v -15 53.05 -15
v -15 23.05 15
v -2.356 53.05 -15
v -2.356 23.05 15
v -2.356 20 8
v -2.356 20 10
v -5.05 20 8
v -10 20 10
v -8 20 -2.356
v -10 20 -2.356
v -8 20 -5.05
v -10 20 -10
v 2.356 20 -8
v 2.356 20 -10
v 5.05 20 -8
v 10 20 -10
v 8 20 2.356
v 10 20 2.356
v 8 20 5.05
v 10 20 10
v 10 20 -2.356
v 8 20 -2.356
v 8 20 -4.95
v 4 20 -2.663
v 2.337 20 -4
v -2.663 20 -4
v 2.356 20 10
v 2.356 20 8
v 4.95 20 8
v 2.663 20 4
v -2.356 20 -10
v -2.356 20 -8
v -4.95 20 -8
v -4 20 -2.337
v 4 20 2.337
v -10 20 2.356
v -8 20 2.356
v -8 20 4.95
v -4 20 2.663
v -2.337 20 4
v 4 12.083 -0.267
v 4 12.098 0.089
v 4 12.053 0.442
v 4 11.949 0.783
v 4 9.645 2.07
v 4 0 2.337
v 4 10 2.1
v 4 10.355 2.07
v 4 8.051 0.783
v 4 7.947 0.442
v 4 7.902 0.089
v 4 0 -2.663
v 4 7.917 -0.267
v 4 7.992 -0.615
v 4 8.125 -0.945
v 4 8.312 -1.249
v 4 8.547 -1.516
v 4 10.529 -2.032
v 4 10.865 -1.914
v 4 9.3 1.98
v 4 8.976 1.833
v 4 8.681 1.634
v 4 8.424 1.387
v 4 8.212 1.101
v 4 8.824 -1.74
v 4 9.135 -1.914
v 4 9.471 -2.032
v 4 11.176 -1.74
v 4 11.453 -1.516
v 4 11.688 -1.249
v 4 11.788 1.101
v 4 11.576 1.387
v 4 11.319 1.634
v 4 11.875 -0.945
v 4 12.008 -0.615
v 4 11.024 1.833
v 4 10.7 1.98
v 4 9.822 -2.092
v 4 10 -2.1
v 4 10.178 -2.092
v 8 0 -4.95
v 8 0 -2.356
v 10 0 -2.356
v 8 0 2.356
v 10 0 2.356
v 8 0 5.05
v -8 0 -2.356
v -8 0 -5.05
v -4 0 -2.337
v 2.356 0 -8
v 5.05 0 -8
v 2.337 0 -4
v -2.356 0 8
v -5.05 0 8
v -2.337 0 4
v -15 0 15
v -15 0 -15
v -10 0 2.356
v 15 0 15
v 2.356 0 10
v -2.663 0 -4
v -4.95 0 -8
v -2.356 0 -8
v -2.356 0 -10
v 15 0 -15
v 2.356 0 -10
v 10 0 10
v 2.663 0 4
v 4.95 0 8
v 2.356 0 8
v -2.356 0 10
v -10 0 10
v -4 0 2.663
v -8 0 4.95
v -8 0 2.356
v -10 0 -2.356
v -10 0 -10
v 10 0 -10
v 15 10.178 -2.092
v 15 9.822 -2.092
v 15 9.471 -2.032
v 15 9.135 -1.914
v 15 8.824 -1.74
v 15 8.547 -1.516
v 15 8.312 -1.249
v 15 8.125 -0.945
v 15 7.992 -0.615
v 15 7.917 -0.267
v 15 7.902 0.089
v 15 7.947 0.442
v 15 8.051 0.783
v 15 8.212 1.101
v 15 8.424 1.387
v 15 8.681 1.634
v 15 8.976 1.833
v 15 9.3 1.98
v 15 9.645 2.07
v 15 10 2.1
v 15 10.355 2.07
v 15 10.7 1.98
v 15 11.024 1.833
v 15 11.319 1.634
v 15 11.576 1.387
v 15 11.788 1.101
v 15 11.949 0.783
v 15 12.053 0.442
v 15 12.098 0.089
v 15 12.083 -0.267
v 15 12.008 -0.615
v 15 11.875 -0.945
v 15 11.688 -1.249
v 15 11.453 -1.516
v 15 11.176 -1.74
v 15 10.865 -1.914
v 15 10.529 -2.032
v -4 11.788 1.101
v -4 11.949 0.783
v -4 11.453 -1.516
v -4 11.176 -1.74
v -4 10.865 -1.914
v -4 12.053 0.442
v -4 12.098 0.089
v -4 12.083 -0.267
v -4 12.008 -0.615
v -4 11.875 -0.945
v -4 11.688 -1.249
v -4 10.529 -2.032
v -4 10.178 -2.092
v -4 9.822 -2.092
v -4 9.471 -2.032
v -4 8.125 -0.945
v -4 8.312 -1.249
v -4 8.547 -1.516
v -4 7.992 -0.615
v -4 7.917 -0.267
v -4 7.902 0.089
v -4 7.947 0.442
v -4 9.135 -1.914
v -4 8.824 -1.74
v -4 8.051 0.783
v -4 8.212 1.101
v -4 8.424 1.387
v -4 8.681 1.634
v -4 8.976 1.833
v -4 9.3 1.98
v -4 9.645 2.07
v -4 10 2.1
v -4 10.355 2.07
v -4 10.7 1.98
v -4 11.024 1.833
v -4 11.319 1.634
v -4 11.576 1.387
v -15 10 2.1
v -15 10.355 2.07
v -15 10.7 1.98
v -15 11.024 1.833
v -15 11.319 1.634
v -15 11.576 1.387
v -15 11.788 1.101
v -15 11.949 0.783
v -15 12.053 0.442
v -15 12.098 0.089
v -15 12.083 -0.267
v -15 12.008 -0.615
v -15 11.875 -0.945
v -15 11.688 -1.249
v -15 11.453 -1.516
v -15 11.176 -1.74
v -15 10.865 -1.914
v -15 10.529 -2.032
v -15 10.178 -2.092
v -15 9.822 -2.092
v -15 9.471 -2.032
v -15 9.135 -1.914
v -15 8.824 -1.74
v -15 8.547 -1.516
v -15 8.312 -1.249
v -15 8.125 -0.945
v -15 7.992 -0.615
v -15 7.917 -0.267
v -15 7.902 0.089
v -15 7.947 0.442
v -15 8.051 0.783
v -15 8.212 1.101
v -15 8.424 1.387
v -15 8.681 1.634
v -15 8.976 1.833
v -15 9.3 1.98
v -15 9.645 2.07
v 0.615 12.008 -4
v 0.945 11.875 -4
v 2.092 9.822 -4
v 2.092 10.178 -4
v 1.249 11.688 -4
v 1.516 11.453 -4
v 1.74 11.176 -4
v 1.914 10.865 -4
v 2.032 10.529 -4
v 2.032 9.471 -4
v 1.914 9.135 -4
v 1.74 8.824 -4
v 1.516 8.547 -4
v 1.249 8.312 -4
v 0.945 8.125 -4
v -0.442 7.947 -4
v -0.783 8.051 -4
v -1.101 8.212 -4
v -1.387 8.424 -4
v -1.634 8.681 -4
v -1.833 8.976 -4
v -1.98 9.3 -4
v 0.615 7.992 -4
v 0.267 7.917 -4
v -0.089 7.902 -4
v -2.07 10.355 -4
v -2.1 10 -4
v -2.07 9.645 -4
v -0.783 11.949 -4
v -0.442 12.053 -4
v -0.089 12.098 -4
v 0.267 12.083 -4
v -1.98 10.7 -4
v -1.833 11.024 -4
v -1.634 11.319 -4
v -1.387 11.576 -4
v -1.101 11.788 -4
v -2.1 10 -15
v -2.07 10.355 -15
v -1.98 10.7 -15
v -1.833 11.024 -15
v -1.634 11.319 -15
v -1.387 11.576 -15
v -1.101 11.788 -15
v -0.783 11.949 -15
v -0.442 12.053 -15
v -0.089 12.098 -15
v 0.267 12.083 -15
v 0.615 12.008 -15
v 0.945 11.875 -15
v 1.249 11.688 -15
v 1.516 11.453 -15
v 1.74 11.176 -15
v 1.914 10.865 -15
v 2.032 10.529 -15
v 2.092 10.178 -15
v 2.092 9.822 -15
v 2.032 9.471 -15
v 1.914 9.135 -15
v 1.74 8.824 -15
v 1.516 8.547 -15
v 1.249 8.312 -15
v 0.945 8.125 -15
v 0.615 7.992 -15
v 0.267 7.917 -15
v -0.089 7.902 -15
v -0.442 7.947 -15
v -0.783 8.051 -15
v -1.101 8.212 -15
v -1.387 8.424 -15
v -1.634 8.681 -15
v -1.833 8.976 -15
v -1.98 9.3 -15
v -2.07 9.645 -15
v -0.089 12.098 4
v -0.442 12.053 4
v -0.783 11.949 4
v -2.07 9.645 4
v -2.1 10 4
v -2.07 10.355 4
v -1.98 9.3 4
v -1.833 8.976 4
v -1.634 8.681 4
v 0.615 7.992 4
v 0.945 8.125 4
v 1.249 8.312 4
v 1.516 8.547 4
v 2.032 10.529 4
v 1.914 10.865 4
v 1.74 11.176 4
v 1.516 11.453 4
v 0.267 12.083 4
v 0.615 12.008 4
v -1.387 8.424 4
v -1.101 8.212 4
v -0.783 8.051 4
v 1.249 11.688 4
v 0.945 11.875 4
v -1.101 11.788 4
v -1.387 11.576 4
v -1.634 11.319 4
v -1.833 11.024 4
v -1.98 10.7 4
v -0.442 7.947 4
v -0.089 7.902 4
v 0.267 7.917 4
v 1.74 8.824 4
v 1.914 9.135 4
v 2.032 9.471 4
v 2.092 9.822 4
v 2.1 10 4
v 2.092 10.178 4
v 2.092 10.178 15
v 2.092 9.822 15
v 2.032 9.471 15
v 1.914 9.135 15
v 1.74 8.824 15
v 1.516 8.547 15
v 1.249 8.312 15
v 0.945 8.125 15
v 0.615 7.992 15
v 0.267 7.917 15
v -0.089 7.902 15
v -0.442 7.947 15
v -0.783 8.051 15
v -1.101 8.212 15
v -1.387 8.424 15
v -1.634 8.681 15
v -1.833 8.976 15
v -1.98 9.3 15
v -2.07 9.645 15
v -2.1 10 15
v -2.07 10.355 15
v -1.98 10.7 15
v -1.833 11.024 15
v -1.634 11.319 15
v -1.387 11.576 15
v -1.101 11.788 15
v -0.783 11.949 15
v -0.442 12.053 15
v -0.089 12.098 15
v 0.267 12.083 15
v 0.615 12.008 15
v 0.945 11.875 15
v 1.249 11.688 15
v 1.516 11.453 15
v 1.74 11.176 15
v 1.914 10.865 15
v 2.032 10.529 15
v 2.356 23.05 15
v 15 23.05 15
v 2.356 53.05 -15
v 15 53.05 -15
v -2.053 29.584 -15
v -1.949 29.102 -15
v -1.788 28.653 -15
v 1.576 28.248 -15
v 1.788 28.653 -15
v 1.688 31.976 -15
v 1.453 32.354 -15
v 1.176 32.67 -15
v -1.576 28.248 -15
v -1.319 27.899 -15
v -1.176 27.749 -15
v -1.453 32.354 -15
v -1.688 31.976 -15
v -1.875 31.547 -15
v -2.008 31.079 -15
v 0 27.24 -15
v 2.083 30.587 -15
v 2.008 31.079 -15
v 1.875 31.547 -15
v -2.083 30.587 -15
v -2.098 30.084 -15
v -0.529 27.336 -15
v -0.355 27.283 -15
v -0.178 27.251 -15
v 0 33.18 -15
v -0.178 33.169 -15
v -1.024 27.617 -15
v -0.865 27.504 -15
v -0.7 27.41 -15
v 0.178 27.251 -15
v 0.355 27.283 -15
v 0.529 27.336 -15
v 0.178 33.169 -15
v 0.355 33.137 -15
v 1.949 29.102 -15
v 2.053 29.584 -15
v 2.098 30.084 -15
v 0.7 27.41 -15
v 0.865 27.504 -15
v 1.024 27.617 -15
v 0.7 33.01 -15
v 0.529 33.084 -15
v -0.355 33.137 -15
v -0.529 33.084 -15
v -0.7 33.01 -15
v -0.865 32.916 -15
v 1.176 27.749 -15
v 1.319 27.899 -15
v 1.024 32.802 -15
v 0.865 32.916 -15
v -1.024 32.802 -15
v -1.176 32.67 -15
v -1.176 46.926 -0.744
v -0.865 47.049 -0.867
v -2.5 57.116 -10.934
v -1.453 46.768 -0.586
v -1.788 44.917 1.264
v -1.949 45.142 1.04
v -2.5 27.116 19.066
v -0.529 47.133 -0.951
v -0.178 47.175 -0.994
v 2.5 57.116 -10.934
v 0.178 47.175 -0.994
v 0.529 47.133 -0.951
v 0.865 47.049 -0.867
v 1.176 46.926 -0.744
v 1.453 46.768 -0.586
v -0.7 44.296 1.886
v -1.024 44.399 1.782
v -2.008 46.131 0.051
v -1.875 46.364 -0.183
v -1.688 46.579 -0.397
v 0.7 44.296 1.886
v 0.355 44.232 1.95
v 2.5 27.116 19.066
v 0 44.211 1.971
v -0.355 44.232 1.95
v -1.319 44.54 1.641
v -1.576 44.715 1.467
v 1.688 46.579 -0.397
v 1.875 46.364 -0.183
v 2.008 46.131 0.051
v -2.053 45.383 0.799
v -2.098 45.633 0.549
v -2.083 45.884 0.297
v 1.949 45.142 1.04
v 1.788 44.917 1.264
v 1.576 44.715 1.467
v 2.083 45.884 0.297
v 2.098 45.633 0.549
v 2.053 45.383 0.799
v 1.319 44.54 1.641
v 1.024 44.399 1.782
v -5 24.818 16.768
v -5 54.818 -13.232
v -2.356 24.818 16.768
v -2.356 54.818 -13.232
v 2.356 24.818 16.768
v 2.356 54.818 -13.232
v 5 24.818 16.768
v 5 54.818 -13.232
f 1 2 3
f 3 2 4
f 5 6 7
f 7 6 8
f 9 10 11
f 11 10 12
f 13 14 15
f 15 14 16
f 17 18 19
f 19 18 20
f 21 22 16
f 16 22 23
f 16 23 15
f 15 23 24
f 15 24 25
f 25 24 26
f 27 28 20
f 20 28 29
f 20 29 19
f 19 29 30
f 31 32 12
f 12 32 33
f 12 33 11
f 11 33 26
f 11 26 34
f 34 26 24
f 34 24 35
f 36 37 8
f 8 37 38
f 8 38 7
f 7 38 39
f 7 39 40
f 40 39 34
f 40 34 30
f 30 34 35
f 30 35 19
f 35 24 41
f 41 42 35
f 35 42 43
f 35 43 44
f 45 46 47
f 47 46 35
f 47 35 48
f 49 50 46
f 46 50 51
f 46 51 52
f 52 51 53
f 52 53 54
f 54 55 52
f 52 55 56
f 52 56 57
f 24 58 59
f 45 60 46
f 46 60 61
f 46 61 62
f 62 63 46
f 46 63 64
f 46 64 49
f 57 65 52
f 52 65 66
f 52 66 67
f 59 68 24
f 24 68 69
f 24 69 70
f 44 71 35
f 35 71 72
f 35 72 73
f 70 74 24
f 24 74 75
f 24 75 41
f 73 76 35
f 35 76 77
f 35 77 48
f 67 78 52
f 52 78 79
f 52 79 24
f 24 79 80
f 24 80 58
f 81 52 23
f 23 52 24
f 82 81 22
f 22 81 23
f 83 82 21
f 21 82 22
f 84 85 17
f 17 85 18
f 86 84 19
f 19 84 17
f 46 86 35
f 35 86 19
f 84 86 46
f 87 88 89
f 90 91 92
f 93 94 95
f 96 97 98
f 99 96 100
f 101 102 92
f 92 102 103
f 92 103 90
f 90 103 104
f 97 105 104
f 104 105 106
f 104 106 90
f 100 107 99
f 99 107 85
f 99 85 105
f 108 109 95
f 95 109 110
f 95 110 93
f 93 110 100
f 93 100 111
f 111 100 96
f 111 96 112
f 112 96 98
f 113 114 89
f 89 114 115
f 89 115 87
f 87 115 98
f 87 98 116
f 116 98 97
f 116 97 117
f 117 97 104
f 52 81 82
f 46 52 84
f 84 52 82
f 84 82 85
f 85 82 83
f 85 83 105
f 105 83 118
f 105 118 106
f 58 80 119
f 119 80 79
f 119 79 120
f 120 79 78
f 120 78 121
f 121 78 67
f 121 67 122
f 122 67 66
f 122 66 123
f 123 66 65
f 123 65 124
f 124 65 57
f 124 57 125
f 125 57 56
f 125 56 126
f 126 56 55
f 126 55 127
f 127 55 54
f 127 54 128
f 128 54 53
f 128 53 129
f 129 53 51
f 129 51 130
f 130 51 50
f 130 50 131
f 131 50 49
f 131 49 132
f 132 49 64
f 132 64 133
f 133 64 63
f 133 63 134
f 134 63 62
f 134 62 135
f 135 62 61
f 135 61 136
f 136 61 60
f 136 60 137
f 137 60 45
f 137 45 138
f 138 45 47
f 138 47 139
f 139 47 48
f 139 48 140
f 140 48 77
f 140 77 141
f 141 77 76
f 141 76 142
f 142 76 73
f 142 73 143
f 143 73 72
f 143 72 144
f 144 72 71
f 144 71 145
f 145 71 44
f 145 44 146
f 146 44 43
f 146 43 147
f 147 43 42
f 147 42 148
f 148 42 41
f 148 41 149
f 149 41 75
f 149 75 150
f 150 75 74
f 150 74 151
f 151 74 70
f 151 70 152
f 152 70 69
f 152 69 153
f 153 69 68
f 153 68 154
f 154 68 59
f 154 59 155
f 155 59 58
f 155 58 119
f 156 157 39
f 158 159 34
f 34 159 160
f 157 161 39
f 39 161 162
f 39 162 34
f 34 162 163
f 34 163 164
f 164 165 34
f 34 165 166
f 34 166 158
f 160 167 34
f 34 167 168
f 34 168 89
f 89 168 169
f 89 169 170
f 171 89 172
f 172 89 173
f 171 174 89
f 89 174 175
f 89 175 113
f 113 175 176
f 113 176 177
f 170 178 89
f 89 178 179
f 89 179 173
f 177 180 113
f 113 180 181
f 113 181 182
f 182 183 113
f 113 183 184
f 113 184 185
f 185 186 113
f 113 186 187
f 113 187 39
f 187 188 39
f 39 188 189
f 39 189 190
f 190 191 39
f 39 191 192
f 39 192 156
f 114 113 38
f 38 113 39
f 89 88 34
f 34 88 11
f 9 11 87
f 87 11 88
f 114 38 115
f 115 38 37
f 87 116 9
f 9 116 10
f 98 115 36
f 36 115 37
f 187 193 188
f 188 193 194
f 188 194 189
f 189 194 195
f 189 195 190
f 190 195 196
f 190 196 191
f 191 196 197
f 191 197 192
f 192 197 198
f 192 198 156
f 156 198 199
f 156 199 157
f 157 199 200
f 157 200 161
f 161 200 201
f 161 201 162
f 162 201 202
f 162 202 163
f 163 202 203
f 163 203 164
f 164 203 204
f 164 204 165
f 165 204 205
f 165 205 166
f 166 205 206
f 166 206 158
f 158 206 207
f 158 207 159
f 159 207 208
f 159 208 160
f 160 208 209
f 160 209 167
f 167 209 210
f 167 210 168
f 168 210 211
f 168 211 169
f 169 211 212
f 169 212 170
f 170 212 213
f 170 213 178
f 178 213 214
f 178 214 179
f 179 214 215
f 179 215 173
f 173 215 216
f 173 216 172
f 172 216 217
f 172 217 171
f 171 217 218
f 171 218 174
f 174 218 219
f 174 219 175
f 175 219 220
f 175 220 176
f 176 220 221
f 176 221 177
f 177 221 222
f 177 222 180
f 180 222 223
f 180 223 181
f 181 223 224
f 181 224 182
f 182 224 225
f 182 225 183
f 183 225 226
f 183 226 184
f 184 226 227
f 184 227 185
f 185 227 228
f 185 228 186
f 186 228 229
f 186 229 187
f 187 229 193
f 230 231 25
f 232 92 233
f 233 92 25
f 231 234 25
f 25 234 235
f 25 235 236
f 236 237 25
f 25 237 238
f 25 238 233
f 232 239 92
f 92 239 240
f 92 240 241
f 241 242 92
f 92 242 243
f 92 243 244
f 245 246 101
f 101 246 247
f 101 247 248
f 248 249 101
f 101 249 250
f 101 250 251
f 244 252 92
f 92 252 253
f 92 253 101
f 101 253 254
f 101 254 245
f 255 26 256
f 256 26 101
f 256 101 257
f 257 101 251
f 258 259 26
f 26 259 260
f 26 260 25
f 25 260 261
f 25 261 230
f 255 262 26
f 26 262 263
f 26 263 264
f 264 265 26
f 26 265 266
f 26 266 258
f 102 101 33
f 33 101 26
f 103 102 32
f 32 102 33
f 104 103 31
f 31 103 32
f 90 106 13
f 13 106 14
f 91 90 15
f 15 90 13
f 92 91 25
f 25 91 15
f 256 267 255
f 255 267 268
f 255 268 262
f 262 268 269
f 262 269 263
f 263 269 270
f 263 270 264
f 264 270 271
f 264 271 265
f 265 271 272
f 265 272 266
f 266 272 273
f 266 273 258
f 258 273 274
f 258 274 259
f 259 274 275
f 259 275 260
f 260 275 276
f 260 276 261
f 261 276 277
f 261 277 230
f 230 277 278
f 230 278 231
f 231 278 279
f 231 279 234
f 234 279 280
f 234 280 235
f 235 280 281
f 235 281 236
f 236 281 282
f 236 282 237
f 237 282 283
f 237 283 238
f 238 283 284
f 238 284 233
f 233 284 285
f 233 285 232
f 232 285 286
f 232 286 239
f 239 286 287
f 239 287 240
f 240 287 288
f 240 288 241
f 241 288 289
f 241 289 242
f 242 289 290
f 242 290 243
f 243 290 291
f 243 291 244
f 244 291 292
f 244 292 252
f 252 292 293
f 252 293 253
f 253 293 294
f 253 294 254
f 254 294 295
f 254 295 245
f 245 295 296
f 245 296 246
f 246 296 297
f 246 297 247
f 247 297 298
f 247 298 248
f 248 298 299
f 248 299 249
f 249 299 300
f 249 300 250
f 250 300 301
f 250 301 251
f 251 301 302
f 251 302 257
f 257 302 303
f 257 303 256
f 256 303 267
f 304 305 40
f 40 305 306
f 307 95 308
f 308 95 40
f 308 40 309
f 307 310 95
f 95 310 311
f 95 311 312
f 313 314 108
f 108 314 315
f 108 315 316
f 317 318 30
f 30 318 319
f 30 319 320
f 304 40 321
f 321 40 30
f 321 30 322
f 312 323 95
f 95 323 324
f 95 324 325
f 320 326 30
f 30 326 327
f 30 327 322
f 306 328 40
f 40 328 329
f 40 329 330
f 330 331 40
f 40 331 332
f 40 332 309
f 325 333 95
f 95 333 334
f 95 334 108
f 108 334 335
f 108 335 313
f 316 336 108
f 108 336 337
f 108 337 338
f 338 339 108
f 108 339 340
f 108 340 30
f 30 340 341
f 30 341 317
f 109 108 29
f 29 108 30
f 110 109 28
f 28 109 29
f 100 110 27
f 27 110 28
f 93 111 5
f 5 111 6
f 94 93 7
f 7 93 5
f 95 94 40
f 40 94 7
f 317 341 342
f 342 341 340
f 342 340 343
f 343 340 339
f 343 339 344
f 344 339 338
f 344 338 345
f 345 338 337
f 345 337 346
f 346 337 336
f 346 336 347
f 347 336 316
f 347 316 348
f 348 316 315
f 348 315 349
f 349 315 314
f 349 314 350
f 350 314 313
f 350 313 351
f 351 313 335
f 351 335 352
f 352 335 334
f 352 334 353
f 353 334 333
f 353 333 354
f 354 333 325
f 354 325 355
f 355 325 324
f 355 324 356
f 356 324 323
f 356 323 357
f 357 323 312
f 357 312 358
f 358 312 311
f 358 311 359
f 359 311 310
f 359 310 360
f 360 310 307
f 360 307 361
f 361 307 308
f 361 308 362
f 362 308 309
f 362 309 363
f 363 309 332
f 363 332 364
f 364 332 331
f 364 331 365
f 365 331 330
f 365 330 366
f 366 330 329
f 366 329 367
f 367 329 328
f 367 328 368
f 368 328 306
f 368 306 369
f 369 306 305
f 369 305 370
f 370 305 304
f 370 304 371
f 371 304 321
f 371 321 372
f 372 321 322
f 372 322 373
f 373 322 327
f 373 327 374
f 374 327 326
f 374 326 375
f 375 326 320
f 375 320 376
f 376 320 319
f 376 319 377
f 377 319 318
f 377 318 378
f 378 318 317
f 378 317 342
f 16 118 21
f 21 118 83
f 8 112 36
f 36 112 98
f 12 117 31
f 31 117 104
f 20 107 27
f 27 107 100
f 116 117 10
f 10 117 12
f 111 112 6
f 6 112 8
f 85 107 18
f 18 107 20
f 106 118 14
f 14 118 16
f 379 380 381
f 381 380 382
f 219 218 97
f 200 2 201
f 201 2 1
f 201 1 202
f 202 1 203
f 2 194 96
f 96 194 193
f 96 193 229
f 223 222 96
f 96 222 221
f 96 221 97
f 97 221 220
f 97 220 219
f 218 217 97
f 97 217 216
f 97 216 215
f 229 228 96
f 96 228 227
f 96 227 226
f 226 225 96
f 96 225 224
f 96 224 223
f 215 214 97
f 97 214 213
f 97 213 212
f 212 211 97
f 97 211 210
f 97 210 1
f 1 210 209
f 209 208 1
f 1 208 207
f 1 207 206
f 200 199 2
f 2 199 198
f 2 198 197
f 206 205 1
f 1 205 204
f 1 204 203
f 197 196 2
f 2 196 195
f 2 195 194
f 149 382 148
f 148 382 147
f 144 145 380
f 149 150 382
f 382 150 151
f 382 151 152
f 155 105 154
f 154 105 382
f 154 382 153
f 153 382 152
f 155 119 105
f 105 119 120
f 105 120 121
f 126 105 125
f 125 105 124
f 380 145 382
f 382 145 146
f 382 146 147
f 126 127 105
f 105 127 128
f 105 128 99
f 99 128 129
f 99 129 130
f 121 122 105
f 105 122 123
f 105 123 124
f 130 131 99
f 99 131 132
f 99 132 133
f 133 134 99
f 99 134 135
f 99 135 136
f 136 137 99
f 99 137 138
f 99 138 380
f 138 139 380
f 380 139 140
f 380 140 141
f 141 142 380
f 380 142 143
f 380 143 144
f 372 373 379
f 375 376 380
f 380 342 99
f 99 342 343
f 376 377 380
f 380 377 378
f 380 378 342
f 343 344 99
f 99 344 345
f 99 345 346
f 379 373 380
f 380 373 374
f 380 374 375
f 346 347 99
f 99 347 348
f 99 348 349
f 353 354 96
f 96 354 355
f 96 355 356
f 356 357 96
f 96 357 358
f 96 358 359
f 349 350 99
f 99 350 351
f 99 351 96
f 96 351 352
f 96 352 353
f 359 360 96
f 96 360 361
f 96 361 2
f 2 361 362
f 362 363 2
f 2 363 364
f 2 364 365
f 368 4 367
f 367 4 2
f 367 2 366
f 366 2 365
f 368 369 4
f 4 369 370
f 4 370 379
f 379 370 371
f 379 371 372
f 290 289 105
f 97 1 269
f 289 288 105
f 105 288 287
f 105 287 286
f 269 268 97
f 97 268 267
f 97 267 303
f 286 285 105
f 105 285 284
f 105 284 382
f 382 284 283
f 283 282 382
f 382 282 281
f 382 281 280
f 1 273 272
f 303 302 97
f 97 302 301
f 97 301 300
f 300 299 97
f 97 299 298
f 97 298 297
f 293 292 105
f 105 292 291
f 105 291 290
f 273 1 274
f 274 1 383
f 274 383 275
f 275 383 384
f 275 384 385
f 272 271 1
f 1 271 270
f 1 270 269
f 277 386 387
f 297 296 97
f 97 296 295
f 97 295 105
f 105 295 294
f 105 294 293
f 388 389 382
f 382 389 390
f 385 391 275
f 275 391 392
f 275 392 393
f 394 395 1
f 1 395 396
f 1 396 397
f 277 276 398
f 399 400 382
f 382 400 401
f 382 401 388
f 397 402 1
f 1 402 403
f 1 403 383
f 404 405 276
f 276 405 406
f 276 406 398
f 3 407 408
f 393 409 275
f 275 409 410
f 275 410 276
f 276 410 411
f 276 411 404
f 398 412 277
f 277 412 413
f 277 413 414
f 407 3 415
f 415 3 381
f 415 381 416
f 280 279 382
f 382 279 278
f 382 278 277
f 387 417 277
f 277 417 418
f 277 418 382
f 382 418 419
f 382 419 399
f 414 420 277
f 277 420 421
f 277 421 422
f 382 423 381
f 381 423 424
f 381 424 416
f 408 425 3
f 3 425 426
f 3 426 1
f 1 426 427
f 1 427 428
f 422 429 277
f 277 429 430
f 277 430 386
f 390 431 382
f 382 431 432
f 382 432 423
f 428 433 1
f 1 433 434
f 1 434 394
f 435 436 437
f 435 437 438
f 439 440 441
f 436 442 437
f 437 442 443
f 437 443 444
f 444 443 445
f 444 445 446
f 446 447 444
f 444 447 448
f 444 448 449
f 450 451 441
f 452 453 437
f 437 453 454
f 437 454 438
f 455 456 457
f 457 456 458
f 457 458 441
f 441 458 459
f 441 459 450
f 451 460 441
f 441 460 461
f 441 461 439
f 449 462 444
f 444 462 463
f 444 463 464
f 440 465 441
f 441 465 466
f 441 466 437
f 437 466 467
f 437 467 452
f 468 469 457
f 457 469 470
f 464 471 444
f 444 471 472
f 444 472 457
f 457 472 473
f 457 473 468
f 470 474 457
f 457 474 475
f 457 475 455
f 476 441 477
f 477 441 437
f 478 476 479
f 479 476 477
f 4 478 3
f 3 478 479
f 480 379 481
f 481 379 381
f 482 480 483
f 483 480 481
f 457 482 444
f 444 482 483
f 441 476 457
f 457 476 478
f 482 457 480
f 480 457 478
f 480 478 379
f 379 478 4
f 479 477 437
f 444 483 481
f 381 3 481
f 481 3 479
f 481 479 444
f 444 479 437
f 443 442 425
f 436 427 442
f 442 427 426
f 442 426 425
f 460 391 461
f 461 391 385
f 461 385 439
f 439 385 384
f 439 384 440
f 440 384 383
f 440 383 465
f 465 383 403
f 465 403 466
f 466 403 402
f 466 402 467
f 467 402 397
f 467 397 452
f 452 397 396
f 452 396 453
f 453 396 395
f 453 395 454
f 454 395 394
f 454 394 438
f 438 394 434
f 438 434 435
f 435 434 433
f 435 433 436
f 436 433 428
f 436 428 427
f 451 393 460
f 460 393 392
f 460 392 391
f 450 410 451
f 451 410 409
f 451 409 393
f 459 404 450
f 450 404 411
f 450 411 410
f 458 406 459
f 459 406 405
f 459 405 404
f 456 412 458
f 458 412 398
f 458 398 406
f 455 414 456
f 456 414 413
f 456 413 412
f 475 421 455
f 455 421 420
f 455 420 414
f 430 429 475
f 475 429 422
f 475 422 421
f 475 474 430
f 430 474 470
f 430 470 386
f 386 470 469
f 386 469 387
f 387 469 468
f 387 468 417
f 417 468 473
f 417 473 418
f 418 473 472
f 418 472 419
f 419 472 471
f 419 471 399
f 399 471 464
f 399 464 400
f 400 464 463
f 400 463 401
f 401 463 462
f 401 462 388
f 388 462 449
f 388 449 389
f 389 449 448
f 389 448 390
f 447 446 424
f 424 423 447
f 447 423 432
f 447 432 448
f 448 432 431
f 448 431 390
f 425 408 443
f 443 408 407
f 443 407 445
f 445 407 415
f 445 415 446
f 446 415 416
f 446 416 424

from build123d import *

# Parameters (mm, degrees)
SKETCH1_W           = 30
SKETCH1_H           = 30
SKETCH1_W_2         = 20
SKETCH1_H_2         = 20
BOSS_EXTRUDE1_DEPTH = 20
SKETCH2_W           = 4.711017494
SKETCH2_H           = 2
SKETCH2_W_2         = 2
SKETCH2_H_2         = 4.711017494
BOSS_EXTRUDE2_DEPTH = 20
SKETCH3_R           = 2.1
CUT_EXTRUDE1_DEPTH  = 31
SKETCH4_R           = 2.1
CUT_EXTRUDE2_DEPTH  = 31
BOSS_EXTRUDE3_DEPTH = 30
SKETCH8_W           = 4.711017494
SKETCH8_H           = 2.5
BOSS_EXTRUDE4_DEPTH = 42.42640687
SKETCH9_R           = 2.1
CUT_EXTRUDE3_DEPTH  = 44.261940705


with BuildPart() as part:
    # Sketch1 → Boss-Extrude1 (new body)
    with BuildSketch(Plane(origin=(0, 0, 0), x_dir=(1, 0, 0), z_dir=(0, 1, 0))):
        Rectangle(SKETCH1_W, SKETCH1_H)
        Rectangle(SKETCH1_W_2, SKETCH1_H_2, mode=Mode.SUBTRACT)
    extrude(amount=BOSS_EXTRUDE1_DEPTH)


with BuildPart() as body_2:
    # Sketch2 → Boss-Extrude2 (new body)
    with BuildSketch(Plane(origin=(0, 20, 0), x_dir=(1, 0, 0), z_dir=(0, 1, 0))):
        Polygon((2.336539675, 4), (-2.663460325, 4), (-4.950152781, 8), (5.049847219, 8), align=None)
        with Locations((0, 9)):
            Rectangle(SKETCH2_W, SKETCH2_H)
        Polygon((-4, 2.336539675), (-4, -2.663460325), (-8, -4.950152781), (-8, 5.049847219), align=None)
        Polygon((-2.336539675, -4), (2.663460325, -4), (4.950152781, -8), (-5.049847219, -8), align=None)
        with Locations((0, -9)):
            Rectangle(SKETCH2_W, SKETCH2_H)
        Polygon((4, 2.663460325), (4, -2.336539675), (8, -5.049847219), (8, -2.355508747), (8, 2.355508747), (8, 4.950152781), align=None)
        with Locations((9, 0)):
            Rectangle(SKETCH2_W_2, SKETCH2_H_2)
        with Locations((-9, 0)):
            Rectangle(SKETCH2_W_2, SKETCH2_H_2)
    extrude(amount=-BOSS_EXTRUDE2_DEPTH)


with BuildPart() as cut_extrude1_tool:
    # Sketch3 → Cut-Extrude1 (new body, through all)
    with BuildSketch(Plane.ZY.offset(15)):
        with Locations((0, 10)):
            Circle(SKETCH3_R)
    extrude(amount=-CUT_EXTRUDE1_DEPTH)


with BuildPart() as part_1:
    add(part.part)

    # Cut-Extrude1: cut by cut_extrude1_tool
    add(cut_extrude1_tool.part, mode=Mode.SUBTRACT)


with BuildPart() as body_2_1:
    add(body_2.part)

    # Cut-Extrude1: cut by cut_extrude1_tool
    add(cut_extrude1_tool.part, mode=Mode.SUBTRACT)


with BuildPart() as cut_extrude2_tool:
    # Sketch4 → Cut-Extrude2 (new body, through all)
    with BuildSketch(Plane(origin=(0, 0, -15), x_dir=(-1, 0, 0), z_dir=(0, 0, -1))):
        with Locations((0, 10)):
            Circle(SKETCH4_R)
    extrude(amount=-CUT_EXTRUDE2_DEPTH)


with BuildPart() as part_2:
    add(part_1.part)

    # Cut-Extrude2: cut by cut_extrude2_tool
    add(cut_extrude2_tool.part, mode=Mode.SUBTRACT)



with BuildPart() as body_2_2:
    add(body_2_1.part)

    # Cut-Extrude2: cut by cut_extrude2_tool
    add(cut_extrude2_tool.part, mode=Mode.SUBTRACT)


with BuildPart() as part_3:
    add(part_2.part)

    add(body_2_2.part)  # Boss-Extrude3 merges body 2
    # Sketch5 → Boss-Extrude3 (add)
    with BuildSketch(Plane(origin=(15, 0, 0), x_dir=(0, 0, -1), z_dir=(1, 0, 0))):
        Polygon((15, 53.049895295), (15, 50), (-15, 20), (-15, 23.049895295), align=None)
        Polygon((15, 50), (-15, 20), (15, 20), align=None)
    extrude(amount=-BOSS_EXTRUDE3_DEPTH)

    # Sketch8 → Boss-Extrude4 (add)
    with BuildSketch(Plane(origin=(0, 34.024947648, -34.024947648), x_dir=(1, 0, 0), z_dir=(0, -0.707106781, 0.707106781))):
        Polygon((2.5, 32.655338987), (-2.5, 32.655338987), (-4.999999998, 29.405338987), (-2.355508747, 29.405338987), (2.355508747, 29.405338987), (5.000000002, 29.405338987), align=None)
        with Locations((0, 28.155338987)):
            Rectangle(SKETCH8_W, SKETCH8_H)
    extrude(amount=BOSS_EXTRUDE4_DEPTH)

    # Sketch9 → Cut-Extrude3 (cut, through all)
    with BuildSketch(Plane(origin=(0, 23.090811639, 23.090811639), x_dir=(1, 0, 0), z_dir=(0, 0.707106781, 0.707106781))):
        with Locations((0, 31.96811151)):
            Circle(SKETCH9_R)
    extrude(amount=-CUT_EXTRUDE3_DEPTH, mode=Mode.SUBTRACT)


solid = part_3.part
